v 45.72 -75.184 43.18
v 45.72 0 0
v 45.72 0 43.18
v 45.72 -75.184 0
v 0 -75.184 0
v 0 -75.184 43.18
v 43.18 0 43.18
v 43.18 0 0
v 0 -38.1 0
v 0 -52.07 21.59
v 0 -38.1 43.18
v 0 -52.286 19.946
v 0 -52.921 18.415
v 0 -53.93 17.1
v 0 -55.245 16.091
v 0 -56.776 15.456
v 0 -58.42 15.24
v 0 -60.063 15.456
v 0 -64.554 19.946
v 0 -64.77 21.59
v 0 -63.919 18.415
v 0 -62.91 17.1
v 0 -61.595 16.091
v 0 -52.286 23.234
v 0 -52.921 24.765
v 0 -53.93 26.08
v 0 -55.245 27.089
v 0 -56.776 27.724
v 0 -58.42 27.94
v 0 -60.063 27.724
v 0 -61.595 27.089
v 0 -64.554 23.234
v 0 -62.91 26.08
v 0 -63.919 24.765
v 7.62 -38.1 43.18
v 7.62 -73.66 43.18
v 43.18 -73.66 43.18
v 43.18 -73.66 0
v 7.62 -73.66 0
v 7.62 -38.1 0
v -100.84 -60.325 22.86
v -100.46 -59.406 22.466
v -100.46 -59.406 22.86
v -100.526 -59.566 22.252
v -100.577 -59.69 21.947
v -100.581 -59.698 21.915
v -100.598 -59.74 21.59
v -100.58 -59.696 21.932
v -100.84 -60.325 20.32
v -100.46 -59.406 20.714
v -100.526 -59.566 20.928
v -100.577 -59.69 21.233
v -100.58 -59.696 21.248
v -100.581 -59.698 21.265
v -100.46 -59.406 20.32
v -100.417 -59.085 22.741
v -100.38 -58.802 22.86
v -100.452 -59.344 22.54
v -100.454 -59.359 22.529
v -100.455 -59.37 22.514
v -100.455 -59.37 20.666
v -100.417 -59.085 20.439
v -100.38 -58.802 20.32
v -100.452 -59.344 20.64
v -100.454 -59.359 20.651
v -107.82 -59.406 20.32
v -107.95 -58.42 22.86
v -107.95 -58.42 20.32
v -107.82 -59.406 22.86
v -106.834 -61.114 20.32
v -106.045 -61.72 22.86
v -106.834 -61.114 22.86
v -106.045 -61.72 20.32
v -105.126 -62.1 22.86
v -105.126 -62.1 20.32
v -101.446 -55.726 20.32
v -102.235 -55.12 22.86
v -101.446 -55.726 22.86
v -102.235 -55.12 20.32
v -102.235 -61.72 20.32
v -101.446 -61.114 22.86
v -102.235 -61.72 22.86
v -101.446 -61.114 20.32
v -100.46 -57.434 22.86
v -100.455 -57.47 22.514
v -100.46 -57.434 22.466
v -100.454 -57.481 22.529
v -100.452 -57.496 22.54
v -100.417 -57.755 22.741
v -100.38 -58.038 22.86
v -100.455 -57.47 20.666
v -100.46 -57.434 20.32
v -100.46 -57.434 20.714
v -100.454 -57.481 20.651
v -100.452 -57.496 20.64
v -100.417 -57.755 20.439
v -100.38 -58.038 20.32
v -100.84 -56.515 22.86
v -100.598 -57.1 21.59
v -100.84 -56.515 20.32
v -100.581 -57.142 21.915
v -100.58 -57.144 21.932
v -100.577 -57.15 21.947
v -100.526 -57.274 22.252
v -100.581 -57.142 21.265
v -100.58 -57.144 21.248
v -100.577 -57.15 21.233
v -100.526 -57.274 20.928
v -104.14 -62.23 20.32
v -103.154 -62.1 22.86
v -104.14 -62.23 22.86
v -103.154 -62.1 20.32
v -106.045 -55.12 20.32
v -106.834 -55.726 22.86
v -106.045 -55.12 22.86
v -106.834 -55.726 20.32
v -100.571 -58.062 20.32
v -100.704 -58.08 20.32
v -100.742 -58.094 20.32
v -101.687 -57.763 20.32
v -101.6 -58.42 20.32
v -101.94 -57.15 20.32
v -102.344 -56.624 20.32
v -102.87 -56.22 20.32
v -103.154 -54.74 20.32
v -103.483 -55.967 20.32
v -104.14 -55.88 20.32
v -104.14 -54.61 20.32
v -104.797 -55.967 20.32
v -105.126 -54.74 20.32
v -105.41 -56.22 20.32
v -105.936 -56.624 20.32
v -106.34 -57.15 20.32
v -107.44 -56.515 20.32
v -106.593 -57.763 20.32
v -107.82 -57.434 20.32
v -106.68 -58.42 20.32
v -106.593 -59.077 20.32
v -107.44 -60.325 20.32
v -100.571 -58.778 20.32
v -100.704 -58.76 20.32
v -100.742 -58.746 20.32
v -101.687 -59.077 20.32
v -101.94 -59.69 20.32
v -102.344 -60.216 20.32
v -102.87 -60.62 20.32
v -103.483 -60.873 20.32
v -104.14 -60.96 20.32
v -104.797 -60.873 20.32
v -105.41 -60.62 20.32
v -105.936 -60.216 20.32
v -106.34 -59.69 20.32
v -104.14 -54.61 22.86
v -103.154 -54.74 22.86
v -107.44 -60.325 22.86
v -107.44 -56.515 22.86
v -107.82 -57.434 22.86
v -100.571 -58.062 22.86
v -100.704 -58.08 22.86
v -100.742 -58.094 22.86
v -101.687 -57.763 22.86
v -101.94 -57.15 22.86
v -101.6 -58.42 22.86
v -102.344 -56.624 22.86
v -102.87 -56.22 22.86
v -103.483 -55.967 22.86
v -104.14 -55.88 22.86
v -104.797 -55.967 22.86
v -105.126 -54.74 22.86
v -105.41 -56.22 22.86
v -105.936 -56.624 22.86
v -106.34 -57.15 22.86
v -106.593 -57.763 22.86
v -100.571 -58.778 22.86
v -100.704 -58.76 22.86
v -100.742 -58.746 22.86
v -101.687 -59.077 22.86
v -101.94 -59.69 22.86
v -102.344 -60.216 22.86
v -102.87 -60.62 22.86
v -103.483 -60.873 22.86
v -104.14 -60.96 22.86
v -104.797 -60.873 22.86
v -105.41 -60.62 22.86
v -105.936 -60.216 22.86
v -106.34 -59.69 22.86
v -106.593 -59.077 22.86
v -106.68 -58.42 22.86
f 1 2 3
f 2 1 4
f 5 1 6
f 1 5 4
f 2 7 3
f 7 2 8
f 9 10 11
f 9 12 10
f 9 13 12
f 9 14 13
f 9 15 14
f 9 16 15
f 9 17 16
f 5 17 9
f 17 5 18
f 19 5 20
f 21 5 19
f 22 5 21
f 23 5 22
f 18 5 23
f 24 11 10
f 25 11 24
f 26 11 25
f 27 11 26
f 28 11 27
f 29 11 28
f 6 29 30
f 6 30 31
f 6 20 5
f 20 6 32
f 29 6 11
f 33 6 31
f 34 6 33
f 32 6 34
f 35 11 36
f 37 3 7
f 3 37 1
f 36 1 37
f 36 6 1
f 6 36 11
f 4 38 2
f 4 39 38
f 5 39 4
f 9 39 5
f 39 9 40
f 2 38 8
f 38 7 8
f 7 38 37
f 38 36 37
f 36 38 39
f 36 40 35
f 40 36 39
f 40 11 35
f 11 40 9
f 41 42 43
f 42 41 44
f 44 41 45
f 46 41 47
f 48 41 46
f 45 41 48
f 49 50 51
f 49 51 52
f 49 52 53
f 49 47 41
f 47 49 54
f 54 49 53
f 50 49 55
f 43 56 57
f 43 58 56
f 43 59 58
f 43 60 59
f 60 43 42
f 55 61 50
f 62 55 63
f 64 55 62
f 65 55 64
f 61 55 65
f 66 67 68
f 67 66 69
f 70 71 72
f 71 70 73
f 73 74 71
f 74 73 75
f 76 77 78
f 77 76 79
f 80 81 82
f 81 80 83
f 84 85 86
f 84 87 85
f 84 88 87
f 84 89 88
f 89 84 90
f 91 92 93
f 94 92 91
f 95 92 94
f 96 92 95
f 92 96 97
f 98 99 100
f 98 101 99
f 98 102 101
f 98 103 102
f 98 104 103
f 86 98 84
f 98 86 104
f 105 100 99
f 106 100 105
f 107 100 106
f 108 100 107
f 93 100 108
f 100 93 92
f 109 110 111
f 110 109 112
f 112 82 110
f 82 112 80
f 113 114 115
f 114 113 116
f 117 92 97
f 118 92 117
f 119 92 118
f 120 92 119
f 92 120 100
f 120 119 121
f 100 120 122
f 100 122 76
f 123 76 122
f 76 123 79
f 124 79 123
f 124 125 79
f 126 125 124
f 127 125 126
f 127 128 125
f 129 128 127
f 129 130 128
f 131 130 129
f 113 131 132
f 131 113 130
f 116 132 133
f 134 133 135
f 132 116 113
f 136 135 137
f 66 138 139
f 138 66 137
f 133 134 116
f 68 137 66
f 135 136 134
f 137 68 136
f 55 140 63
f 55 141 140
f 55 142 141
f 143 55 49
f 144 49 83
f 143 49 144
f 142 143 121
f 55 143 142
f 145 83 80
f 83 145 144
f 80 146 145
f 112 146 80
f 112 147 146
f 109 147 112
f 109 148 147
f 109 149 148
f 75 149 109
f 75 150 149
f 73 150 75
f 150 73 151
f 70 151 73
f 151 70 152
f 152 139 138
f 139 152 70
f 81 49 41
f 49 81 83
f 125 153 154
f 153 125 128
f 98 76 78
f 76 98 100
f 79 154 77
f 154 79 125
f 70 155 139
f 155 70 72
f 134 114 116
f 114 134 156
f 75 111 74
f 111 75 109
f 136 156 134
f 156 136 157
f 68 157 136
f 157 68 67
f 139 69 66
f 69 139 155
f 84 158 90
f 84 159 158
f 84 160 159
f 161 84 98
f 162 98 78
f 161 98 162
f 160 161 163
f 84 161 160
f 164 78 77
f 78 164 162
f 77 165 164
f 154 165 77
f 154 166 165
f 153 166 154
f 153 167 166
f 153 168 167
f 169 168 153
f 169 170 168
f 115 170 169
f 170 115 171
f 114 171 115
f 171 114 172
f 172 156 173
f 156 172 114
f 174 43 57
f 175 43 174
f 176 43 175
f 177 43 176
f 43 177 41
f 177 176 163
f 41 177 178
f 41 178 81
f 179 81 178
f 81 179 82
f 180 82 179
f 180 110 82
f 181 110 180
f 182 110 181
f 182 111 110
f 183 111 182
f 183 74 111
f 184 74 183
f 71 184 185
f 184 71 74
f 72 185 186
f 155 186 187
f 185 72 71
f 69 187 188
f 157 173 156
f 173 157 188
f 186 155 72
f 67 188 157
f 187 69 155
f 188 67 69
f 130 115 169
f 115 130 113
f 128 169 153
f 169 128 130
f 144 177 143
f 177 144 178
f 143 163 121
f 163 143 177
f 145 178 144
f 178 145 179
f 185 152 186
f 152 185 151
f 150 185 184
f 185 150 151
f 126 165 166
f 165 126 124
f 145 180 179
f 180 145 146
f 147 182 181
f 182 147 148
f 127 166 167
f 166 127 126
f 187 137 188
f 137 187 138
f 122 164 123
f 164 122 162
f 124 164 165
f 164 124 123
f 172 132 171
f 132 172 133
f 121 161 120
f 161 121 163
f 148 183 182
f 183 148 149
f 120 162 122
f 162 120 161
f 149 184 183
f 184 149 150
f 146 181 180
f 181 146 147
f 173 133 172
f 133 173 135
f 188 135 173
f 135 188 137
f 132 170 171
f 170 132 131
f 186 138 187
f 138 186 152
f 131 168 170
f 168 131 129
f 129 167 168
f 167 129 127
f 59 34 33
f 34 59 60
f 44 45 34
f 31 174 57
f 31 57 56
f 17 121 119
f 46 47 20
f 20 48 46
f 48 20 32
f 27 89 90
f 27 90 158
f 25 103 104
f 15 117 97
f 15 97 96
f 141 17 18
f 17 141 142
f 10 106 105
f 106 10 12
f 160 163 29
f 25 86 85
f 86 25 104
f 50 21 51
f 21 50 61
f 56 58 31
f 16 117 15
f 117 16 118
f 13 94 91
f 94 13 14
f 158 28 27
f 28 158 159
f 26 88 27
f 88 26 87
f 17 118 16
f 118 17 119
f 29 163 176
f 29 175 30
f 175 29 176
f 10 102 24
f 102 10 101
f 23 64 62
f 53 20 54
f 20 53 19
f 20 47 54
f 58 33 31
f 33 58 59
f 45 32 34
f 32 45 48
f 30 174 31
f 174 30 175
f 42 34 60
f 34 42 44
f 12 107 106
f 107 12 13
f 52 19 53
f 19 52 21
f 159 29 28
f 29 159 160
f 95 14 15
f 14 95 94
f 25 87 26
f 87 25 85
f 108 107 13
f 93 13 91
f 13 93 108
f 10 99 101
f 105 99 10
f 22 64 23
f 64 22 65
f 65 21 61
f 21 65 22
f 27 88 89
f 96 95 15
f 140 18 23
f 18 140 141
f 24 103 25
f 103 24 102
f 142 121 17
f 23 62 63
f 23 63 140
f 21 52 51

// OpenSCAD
inch=25.4;
$fn=24;

module DoorInterface()
{
    difference()
    {
        cube([1.8*inch,1.7*inch,2.96*inch], center=false);
        translate([0.3*inch,0,0])
        {
            cube([1.4*inch,1.7*inch,2.9*inch], center=false);
        }
        cube([0.3*inch, 1.7*inch,1.5*inch],center=false);
    };
}

module Arm()
{
    translate([0,0.85*inch,2.3*inch])
    {
        rotate([0, -90,0])
        {
                cylinder(4*inch, .25*inch,.05*inch, center=false);
        };
    }
}

module Hook()
{
    translate([-4.1*inch,0.9*inch,2.3*inch])
    {
        rotate([90,0,0])
        {
            difference()
            {
                cylinder(0.1*inch,0.15*inch,0.15*inch,center=false);
                //translate([.05*inch,.03*inch,0])
                //{
                    cylinder(0.1*inch,0.1*inch,0.1*inch,center=false);
                //}
            }
        }
    }
}

module CatToyHook()
{
    rotate([90,0,0])
    {
        DoorInterface();
        Arm();
        Hook();
    }
}

CatToyHook();
